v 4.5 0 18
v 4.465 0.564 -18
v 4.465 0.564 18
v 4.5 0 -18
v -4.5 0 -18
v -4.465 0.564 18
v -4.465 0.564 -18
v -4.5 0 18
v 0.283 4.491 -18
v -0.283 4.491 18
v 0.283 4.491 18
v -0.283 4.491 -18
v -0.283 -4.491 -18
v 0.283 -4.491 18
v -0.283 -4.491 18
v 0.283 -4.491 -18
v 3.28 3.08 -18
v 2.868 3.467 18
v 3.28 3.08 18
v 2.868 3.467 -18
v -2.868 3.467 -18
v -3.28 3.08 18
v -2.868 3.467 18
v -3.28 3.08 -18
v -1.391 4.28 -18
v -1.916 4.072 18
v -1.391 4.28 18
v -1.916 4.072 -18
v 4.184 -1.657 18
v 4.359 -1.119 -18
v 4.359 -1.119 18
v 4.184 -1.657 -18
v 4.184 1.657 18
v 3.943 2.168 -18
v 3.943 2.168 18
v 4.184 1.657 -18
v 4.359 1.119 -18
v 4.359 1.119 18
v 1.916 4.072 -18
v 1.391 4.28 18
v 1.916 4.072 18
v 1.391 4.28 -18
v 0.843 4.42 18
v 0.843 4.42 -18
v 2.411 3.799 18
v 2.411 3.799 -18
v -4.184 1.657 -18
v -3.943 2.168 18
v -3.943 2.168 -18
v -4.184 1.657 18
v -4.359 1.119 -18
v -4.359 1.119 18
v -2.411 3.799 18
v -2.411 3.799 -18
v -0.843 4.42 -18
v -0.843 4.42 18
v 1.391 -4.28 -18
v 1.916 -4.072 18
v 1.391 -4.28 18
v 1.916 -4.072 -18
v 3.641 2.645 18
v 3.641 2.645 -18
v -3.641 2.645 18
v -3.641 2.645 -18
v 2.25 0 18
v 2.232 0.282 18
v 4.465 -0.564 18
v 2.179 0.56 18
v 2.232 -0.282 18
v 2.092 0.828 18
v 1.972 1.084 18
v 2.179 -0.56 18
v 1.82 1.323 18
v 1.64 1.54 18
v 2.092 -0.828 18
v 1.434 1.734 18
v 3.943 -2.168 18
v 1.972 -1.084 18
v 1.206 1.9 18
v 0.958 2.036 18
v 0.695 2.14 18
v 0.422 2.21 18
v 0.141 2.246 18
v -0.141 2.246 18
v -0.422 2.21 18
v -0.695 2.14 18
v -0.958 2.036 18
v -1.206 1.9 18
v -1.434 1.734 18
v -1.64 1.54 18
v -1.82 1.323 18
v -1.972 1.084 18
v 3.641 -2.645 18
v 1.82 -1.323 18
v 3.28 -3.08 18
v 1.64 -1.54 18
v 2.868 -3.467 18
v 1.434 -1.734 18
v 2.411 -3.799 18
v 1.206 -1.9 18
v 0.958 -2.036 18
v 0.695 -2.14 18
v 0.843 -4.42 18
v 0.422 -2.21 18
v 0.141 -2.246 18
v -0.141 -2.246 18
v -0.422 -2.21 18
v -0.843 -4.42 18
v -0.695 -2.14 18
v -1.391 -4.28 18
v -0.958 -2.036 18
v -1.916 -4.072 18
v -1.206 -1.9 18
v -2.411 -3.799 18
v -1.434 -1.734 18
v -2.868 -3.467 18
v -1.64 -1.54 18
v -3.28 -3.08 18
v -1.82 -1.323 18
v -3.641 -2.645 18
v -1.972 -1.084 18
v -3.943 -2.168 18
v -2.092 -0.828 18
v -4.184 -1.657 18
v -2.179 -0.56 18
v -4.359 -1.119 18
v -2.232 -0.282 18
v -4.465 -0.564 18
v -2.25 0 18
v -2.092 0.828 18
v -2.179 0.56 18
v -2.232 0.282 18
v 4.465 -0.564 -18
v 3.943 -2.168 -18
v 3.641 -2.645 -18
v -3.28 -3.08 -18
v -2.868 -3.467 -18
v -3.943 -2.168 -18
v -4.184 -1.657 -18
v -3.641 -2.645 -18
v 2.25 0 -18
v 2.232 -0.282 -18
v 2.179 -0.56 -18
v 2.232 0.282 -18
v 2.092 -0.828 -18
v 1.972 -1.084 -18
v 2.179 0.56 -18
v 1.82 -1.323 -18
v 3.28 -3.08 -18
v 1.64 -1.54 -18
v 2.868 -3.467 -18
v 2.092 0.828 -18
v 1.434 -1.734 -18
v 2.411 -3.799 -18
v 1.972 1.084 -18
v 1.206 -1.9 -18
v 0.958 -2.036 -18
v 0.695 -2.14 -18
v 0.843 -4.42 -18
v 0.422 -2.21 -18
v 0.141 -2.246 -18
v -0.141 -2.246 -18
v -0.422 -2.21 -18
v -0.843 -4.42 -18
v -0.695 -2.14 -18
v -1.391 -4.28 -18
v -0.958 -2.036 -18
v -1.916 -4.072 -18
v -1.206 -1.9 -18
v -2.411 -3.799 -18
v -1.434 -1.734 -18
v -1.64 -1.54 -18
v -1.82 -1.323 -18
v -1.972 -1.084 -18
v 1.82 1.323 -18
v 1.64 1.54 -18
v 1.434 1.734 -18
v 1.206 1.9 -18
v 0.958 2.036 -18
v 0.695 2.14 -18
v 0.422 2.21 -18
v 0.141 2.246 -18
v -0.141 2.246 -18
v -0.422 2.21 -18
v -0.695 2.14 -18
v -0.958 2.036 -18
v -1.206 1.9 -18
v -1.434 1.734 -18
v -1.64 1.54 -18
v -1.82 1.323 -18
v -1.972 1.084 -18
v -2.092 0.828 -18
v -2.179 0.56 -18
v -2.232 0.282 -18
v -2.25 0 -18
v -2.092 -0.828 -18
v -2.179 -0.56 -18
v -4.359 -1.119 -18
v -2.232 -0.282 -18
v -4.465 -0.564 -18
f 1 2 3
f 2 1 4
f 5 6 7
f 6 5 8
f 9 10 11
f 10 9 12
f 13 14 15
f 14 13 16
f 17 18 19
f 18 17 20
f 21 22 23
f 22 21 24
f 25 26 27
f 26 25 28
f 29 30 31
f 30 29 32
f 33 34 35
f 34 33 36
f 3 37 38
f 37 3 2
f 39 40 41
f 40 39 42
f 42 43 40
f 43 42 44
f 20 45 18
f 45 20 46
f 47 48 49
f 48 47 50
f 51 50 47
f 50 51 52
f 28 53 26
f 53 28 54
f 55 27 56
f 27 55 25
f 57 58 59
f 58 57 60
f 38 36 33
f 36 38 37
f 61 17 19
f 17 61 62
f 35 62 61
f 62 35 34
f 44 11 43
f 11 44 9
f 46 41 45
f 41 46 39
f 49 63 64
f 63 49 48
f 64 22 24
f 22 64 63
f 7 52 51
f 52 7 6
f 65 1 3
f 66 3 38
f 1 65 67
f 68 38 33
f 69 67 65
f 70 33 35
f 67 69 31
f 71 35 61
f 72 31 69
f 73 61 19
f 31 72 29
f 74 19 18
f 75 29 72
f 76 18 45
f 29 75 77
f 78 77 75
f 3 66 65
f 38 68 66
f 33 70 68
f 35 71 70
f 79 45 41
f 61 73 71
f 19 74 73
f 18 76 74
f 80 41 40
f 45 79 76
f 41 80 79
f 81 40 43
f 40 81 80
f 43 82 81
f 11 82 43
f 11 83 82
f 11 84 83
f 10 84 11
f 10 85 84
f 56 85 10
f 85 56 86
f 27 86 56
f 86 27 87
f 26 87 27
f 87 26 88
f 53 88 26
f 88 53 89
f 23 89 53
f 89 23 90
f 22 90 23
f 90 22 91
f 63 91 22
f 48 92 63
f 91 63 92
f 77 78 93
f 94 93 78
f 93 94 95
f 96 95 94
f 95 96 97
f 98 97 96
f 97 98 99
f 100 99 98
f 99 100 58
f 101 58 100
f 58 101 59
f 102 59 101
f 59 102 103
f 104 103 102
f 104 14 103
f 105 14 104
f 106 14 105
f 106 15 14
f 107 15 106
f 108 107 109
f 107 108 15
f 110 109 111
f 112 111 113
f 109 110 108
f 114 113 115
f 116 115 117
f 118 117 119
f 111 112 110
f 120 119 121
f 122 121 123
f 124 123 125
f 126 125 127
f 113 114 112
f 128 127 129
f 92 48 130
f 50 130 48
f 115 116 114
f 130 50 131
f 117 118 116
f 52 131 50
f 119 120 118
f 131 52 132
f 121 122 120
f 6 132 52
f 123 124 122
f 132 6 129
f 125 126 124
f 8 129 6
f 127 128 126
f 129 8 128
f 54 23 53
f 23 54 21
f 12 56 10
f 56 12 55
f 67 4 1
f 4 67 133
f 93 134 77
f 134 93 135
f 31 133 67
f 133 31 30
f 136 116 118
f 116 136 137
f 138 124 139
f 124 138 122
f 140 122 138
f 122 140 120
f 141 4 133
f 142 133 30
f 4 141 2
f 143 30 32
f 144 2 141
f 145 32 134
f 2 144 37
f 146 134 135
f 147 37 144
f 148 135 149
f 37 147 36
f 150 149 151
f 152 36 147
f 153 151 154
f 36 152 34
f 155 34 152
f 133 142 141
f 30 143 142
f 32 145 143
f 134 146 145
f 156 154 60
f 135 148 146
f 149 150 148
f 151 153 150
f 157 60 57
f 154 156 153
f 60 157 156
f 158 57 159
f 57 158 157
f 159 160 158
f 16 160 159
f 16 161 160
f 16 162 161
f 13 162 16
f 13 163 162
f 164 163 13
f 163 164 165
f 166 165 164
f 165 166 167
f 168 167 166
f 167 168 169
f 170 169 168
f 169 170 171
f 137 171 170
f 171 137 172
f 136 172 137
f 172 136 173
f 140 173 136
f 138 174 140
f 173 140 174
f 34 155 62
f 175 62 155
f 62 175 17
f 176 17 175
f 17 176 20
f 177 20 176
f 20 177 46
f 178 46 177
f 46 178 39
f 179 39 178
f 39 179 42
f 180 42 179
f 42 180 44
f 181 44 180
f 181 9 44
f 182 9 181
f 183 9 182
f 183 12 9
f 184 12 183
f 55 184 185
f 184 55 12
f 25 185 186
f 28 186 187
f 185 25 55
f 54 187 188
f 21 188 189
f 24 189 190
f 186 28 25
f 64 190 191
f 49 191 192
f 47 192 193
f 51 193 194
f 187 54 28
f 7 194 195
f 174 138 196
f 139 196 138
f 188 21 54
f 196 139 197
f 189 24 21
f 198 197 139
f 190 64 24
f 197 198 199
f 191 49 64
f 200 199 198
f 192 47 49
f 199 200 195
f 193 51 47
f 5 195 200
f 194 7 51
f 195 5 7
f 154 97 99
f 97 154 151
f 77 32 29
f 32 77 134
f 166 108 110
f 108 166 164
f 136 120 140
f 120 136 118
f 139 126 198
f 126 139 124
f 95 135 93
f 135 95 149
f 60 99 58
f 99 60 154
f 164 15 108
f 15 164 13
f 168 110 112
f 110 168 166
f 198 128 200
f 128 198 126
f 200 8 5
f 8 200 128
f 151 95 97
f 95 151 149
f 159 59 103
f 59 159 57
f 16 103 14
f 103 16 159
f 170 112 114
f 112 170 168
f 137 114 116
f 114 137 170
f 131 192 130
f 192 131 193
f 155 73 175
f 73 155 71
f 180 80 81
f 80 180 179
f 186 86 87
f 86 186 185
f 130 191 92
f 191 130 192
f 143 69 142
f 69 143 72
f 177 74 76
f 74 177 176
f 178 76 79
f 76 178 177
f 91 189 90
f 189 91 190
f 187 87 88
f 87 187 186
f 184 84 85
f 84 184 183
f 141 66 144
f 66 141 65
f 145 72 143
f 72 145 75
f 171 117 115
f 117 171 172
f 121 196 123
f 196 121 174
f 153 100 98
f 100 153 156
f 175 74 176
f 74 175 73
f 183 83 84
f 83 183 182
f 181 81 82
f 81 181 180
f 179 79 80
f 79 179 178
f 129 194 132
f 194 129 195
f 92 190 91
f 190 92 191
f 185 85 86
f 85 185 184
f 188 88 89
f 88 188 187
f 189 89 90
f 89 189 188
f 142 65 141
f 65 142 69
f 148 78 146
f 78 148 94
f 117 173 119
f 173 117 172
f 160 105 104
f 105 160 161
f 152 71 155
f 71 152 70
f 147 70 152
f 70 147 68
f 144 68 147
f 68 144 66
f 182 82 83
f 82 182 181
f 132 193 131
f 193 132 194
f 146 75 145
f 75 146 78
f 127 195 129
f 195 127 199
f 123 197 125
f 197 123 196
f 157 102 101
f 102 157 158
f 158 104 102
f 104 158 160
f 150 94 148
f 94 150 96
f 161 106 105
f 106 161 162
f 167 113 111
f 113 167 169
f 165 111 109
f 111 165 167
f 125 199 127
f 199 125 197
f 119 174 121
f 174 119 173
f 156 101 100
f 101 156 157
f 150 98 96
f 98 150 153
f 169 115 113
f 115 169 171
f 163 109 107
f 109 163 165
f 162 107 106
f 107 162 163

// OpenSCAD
$fn = 50;


difference() {
	union() {
		translate(v = [0, 0, -18.0000000000]) {
			cylinder(h = 36, r = 4.5000000000);
		}
	}
	union() {
		translate(v = [0, 0, -100.0000000000]) {
			cylinder(h = 200, r = 2.2500000000);
		}
	}
}
